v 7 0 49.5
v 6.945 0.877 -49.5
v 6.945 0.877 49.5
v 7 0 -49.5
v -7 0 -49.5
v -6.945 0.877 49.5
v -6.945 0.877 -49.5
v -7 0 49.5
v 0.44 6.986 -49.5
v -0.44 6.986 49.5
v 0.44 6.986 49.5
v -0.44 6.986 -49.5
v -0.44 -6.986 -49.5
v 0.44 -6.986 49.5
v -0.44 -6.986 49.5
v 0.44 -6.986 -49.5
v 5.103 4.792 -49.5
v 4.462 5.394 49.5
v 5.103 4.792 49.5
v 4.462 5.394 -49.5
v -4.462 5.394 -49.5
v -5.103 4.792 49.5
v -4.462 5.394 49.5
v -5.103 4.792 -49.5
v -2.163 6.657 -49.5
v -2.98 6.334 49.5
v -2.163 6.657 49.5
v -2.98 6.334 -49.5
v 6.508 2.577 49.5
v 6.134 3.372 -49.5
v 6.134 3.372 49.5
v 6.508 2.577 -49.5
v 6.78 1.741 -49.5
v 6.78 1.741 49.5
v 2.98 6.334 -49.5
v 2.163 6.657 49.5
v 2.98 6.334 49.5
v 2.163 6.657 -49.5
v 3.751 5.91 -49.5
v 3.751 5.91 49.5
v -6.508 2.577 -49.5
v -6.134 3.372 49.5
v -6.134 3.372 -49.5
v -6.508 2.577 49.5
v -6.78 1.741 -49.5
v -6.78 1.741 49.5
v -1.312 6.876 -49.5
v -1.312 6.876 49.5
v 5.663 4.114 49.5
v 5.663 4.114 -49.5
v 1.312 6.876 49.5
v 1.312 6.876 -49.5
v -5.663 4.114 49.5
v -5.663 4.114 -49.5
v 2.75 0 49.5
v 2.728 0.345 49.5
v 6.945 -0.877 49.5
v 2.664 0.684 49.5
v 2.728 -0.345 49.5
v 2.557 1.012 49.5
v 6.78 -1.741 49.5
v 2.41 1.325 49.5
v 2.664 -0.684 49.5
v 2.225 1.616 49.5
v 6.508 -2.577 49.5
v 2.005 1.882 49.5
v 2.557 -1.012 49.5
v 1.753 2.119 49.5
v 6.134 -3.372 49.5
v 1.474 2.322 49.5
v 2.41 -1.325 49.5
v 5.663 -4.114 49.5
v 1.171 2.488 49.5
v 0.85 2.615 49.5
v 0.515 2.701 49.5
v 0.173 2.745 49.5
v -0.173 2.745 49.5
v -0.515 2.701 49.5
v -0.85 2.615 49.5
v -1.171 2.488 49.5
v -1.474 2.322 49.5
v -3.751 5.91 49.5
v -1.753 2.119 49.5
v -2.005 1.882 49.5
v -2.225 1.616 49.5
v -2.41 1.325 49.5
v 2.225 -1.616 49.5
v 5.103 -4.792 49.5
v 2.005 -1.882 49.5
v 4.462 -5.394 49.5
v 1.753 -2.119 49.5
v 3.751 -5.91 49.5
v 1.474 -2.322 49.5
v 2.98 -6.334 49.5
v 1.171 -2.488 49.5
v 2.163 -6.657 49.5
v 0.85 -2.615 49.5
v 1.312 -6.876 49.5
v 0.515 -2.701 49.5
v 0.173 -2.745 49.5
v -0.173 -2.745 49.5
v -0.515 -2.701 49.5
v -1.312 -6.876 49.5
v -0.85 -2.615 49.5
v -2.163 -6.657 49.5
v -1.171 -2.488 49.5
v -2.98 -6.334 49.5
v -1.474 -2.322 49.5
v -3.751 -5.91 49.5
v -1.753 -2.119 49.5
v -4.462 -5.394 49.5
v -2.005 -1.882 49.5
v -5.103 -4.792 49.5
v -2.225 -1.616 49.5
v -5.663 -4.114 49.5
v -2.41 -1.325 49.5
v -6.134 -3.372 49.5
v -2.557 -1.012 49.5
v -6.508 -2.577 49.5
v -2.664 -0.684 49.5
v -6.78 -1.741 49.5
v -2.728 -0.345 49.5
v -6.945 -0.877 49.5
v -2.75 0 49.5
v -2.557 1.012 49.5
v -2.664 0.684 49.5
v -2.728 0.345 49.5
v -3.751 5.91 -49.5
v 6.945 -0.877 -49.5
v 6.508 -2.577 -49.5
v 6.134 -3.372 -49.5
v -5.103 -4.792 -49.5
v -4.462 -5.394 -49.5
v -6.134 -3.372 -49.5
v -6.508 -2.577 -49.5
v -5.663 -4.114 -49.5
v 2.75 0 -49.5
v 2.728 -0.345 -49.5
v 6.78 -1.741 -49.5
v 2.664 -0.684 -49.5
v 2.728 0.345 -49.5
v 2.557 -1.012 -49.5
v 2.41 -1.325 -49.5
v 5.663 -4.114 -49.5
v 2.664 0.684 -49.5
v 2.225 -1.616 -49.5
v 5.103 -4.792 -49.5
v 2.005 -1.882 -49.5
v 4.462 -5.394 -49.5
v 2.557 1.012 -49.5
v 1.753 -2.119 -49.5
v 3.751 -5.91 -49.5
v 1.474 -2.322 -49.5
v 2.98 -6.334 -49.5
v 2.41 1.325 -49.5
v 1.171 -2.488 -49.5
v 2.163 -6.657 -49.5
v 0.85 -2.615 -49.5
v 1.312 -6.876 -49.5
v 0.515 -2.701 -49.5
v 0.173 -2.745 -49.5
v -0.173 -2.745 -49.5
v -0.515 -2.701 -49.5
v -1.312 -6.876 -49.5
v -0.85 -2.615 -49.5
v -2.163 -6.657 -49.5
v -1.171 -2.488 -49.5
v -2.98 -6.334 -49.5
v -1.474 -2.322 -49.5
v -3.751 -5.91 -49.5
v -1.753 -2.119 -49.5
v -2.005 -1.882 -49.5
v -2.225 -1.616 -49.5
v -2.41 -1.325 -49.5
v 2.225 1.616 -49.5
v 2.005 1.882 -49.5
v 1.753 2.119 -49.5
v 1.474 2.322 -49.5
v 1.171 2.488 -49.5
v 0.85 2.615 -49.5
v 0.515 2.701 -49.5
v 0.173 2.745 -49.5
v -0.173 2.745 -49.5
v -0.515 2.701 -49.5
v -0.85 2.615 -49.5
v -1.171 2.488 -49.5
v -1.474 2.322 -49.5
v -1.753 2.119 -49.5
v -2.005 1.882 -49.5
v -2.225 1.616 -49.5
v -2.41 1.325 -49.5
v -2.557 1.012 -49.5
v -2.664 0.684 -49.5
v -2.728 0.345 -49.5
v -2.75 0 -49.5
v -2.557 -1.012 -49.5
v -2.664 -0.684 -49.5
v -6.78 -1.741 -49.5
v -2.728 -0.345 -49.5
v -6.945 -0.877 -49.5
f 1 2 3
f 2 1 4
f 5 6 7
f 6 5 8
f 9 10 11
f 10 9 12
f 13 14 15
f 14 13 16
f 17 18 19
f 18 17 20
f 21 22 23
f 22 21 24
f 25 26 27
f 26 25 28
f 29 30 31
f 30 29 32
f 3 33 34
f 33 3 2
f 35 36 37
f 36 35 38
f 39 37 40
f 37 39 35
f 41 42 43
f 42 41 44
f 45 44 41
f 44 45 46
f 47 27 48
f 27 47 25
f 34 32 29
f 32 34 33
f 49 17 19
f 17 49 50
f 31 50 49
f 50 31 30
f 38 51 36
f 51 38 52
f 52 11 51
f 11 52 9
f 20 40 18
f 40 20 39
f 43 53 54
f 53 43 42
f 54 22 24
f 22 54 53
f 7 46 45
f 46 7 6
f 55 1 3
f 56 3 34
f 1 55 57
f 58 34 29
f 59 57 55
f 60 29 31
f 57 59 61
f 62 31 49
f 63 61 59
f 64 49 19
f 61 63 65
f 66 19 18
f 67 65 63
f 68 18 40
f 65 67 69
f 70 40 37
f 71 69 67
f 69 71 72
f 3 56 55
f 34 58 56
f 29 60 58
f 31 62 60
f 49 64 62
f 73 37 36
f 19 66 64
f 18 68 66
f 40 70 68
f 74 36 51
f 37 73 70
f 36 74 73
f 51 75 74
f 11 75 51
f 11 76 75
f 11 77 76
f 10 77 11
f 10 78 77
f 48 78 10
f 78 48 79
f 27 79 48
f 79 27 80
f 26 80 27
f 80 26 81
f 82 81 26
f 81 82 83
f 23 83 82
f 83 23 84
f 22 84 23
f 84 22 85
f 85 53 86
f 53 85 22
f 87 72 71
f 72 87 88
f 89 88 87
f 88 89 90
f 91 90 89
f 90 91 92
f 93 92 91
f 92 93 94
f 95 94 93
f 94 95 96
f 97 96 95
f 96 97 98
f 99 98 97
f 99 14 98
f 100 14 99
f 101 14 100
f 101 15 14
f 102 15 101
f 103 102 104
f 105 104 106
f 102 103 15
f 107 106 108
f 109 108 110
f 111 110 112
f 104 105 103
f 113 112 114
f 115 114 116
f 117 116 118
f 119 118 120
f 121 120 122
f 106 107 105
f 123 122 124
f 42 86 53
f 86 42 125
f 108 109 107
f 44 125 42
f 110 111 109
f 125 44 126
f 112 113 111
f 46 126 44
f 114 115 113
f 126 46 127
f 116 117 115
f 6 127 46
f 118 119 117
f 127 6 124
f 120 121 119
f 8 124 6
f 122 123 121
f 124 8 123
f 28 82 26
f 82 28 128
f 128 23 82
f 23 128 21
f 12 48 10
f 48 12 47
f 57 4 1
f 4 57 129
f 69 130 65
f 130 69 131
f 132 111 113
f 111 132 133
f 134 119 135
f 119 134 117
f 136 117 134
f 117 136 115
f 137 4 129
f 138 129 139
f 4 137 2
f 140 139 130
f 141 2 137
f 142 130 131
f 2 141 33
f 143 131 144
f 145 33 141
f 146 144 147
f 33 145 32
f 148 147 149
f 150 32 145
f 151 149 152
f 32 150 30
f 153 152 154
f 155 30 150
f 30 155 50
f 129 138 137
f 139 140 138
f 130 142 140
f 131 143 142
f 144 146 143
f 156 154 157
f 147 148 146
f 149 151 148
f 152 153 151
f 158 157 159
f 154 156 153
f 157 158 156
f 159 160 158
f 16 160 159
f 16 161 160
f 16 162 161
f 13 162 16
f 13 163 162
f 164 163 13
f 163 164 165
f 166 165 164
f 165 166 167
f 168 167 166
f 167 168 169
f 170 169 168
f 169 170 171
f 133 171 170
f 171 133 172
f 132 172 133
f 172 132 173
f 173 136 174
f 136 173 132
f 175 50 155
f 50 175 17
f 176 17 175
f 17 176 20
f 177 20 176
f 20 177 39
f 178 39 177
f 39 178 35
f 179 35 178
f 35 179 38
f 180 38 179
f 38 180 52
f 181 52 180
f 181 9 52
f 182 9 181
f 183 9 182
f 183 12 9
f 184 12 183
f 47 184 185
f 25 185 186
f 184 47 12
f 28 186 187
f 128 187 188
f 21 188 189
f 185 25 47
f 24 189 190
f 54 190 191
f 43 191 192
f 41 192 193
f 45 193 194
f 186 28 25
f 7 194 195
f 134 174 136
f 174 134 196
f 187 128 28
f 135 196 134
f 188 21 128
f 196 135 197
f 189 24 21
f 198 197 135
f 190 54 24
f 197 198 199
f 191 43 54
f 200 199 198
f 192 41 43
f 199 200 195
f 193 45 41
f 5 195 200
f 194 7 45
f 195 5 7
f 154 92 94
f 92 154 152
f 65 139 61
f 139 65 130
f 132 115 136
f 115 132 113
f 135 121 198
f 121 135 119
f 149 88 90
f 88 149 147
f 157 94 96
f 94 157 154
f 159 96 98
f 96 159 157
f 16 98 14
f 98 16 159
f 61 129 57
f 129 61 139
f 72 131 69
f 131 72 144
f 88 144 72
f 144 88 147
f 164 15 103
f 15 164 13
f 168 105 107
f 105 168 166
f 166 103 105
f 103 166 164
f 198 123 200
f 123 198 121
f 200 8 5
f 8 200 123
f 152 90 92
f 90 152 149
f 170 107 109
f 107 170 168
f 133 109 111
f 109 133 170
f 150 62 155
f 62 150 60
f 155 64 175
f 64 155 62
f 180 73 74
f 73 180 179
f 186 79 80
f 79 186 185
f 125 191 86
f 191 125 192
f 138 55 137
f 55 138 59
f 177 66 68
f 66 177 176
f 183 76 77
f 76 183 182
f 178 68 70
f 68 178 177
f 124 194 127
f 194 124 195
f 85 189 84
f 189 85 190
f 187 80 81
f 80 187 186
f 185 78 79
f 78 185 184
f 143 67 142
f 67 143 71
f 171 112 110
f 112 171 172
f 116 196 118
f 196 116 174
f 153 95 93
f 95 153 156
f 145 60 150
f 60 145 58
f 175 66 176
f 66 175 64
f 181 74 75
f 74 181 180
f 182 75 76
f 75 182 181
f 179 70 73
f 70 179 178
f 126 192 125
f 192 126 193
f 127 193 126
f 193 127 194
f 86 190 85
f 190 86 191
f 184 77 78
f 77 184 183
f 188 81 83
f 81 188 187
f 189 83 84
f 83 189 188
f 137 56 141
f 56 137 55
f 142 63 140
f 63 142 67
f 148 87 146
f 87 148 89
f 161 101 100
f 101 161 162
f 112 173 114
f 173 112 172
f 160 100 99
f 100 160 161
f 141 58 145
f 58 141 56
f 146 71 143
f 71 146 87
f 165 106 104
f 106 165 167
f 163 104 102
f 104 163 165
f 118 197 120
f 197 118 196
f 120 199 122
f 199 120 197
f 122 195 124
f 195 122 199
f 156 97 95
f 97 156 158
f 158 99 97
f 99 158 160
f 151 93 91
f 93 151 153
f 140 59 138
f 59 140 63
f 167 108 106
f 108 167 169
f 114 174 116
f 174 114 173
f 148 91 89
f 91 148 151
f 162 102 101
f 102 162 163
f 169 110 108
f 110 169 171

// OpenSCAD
$fn = 50;


difference() {
	union() {
		translate(v = [0, 0, -49.5000000000]) {
			cylinder(h = 99, r = 7.0000000000);
		}
	}
	union() {
		translate(v = [0, 0, -100.0000000000]) {
			cylinder(h = 200, r = 2.7500000000);
		}
	}
}
